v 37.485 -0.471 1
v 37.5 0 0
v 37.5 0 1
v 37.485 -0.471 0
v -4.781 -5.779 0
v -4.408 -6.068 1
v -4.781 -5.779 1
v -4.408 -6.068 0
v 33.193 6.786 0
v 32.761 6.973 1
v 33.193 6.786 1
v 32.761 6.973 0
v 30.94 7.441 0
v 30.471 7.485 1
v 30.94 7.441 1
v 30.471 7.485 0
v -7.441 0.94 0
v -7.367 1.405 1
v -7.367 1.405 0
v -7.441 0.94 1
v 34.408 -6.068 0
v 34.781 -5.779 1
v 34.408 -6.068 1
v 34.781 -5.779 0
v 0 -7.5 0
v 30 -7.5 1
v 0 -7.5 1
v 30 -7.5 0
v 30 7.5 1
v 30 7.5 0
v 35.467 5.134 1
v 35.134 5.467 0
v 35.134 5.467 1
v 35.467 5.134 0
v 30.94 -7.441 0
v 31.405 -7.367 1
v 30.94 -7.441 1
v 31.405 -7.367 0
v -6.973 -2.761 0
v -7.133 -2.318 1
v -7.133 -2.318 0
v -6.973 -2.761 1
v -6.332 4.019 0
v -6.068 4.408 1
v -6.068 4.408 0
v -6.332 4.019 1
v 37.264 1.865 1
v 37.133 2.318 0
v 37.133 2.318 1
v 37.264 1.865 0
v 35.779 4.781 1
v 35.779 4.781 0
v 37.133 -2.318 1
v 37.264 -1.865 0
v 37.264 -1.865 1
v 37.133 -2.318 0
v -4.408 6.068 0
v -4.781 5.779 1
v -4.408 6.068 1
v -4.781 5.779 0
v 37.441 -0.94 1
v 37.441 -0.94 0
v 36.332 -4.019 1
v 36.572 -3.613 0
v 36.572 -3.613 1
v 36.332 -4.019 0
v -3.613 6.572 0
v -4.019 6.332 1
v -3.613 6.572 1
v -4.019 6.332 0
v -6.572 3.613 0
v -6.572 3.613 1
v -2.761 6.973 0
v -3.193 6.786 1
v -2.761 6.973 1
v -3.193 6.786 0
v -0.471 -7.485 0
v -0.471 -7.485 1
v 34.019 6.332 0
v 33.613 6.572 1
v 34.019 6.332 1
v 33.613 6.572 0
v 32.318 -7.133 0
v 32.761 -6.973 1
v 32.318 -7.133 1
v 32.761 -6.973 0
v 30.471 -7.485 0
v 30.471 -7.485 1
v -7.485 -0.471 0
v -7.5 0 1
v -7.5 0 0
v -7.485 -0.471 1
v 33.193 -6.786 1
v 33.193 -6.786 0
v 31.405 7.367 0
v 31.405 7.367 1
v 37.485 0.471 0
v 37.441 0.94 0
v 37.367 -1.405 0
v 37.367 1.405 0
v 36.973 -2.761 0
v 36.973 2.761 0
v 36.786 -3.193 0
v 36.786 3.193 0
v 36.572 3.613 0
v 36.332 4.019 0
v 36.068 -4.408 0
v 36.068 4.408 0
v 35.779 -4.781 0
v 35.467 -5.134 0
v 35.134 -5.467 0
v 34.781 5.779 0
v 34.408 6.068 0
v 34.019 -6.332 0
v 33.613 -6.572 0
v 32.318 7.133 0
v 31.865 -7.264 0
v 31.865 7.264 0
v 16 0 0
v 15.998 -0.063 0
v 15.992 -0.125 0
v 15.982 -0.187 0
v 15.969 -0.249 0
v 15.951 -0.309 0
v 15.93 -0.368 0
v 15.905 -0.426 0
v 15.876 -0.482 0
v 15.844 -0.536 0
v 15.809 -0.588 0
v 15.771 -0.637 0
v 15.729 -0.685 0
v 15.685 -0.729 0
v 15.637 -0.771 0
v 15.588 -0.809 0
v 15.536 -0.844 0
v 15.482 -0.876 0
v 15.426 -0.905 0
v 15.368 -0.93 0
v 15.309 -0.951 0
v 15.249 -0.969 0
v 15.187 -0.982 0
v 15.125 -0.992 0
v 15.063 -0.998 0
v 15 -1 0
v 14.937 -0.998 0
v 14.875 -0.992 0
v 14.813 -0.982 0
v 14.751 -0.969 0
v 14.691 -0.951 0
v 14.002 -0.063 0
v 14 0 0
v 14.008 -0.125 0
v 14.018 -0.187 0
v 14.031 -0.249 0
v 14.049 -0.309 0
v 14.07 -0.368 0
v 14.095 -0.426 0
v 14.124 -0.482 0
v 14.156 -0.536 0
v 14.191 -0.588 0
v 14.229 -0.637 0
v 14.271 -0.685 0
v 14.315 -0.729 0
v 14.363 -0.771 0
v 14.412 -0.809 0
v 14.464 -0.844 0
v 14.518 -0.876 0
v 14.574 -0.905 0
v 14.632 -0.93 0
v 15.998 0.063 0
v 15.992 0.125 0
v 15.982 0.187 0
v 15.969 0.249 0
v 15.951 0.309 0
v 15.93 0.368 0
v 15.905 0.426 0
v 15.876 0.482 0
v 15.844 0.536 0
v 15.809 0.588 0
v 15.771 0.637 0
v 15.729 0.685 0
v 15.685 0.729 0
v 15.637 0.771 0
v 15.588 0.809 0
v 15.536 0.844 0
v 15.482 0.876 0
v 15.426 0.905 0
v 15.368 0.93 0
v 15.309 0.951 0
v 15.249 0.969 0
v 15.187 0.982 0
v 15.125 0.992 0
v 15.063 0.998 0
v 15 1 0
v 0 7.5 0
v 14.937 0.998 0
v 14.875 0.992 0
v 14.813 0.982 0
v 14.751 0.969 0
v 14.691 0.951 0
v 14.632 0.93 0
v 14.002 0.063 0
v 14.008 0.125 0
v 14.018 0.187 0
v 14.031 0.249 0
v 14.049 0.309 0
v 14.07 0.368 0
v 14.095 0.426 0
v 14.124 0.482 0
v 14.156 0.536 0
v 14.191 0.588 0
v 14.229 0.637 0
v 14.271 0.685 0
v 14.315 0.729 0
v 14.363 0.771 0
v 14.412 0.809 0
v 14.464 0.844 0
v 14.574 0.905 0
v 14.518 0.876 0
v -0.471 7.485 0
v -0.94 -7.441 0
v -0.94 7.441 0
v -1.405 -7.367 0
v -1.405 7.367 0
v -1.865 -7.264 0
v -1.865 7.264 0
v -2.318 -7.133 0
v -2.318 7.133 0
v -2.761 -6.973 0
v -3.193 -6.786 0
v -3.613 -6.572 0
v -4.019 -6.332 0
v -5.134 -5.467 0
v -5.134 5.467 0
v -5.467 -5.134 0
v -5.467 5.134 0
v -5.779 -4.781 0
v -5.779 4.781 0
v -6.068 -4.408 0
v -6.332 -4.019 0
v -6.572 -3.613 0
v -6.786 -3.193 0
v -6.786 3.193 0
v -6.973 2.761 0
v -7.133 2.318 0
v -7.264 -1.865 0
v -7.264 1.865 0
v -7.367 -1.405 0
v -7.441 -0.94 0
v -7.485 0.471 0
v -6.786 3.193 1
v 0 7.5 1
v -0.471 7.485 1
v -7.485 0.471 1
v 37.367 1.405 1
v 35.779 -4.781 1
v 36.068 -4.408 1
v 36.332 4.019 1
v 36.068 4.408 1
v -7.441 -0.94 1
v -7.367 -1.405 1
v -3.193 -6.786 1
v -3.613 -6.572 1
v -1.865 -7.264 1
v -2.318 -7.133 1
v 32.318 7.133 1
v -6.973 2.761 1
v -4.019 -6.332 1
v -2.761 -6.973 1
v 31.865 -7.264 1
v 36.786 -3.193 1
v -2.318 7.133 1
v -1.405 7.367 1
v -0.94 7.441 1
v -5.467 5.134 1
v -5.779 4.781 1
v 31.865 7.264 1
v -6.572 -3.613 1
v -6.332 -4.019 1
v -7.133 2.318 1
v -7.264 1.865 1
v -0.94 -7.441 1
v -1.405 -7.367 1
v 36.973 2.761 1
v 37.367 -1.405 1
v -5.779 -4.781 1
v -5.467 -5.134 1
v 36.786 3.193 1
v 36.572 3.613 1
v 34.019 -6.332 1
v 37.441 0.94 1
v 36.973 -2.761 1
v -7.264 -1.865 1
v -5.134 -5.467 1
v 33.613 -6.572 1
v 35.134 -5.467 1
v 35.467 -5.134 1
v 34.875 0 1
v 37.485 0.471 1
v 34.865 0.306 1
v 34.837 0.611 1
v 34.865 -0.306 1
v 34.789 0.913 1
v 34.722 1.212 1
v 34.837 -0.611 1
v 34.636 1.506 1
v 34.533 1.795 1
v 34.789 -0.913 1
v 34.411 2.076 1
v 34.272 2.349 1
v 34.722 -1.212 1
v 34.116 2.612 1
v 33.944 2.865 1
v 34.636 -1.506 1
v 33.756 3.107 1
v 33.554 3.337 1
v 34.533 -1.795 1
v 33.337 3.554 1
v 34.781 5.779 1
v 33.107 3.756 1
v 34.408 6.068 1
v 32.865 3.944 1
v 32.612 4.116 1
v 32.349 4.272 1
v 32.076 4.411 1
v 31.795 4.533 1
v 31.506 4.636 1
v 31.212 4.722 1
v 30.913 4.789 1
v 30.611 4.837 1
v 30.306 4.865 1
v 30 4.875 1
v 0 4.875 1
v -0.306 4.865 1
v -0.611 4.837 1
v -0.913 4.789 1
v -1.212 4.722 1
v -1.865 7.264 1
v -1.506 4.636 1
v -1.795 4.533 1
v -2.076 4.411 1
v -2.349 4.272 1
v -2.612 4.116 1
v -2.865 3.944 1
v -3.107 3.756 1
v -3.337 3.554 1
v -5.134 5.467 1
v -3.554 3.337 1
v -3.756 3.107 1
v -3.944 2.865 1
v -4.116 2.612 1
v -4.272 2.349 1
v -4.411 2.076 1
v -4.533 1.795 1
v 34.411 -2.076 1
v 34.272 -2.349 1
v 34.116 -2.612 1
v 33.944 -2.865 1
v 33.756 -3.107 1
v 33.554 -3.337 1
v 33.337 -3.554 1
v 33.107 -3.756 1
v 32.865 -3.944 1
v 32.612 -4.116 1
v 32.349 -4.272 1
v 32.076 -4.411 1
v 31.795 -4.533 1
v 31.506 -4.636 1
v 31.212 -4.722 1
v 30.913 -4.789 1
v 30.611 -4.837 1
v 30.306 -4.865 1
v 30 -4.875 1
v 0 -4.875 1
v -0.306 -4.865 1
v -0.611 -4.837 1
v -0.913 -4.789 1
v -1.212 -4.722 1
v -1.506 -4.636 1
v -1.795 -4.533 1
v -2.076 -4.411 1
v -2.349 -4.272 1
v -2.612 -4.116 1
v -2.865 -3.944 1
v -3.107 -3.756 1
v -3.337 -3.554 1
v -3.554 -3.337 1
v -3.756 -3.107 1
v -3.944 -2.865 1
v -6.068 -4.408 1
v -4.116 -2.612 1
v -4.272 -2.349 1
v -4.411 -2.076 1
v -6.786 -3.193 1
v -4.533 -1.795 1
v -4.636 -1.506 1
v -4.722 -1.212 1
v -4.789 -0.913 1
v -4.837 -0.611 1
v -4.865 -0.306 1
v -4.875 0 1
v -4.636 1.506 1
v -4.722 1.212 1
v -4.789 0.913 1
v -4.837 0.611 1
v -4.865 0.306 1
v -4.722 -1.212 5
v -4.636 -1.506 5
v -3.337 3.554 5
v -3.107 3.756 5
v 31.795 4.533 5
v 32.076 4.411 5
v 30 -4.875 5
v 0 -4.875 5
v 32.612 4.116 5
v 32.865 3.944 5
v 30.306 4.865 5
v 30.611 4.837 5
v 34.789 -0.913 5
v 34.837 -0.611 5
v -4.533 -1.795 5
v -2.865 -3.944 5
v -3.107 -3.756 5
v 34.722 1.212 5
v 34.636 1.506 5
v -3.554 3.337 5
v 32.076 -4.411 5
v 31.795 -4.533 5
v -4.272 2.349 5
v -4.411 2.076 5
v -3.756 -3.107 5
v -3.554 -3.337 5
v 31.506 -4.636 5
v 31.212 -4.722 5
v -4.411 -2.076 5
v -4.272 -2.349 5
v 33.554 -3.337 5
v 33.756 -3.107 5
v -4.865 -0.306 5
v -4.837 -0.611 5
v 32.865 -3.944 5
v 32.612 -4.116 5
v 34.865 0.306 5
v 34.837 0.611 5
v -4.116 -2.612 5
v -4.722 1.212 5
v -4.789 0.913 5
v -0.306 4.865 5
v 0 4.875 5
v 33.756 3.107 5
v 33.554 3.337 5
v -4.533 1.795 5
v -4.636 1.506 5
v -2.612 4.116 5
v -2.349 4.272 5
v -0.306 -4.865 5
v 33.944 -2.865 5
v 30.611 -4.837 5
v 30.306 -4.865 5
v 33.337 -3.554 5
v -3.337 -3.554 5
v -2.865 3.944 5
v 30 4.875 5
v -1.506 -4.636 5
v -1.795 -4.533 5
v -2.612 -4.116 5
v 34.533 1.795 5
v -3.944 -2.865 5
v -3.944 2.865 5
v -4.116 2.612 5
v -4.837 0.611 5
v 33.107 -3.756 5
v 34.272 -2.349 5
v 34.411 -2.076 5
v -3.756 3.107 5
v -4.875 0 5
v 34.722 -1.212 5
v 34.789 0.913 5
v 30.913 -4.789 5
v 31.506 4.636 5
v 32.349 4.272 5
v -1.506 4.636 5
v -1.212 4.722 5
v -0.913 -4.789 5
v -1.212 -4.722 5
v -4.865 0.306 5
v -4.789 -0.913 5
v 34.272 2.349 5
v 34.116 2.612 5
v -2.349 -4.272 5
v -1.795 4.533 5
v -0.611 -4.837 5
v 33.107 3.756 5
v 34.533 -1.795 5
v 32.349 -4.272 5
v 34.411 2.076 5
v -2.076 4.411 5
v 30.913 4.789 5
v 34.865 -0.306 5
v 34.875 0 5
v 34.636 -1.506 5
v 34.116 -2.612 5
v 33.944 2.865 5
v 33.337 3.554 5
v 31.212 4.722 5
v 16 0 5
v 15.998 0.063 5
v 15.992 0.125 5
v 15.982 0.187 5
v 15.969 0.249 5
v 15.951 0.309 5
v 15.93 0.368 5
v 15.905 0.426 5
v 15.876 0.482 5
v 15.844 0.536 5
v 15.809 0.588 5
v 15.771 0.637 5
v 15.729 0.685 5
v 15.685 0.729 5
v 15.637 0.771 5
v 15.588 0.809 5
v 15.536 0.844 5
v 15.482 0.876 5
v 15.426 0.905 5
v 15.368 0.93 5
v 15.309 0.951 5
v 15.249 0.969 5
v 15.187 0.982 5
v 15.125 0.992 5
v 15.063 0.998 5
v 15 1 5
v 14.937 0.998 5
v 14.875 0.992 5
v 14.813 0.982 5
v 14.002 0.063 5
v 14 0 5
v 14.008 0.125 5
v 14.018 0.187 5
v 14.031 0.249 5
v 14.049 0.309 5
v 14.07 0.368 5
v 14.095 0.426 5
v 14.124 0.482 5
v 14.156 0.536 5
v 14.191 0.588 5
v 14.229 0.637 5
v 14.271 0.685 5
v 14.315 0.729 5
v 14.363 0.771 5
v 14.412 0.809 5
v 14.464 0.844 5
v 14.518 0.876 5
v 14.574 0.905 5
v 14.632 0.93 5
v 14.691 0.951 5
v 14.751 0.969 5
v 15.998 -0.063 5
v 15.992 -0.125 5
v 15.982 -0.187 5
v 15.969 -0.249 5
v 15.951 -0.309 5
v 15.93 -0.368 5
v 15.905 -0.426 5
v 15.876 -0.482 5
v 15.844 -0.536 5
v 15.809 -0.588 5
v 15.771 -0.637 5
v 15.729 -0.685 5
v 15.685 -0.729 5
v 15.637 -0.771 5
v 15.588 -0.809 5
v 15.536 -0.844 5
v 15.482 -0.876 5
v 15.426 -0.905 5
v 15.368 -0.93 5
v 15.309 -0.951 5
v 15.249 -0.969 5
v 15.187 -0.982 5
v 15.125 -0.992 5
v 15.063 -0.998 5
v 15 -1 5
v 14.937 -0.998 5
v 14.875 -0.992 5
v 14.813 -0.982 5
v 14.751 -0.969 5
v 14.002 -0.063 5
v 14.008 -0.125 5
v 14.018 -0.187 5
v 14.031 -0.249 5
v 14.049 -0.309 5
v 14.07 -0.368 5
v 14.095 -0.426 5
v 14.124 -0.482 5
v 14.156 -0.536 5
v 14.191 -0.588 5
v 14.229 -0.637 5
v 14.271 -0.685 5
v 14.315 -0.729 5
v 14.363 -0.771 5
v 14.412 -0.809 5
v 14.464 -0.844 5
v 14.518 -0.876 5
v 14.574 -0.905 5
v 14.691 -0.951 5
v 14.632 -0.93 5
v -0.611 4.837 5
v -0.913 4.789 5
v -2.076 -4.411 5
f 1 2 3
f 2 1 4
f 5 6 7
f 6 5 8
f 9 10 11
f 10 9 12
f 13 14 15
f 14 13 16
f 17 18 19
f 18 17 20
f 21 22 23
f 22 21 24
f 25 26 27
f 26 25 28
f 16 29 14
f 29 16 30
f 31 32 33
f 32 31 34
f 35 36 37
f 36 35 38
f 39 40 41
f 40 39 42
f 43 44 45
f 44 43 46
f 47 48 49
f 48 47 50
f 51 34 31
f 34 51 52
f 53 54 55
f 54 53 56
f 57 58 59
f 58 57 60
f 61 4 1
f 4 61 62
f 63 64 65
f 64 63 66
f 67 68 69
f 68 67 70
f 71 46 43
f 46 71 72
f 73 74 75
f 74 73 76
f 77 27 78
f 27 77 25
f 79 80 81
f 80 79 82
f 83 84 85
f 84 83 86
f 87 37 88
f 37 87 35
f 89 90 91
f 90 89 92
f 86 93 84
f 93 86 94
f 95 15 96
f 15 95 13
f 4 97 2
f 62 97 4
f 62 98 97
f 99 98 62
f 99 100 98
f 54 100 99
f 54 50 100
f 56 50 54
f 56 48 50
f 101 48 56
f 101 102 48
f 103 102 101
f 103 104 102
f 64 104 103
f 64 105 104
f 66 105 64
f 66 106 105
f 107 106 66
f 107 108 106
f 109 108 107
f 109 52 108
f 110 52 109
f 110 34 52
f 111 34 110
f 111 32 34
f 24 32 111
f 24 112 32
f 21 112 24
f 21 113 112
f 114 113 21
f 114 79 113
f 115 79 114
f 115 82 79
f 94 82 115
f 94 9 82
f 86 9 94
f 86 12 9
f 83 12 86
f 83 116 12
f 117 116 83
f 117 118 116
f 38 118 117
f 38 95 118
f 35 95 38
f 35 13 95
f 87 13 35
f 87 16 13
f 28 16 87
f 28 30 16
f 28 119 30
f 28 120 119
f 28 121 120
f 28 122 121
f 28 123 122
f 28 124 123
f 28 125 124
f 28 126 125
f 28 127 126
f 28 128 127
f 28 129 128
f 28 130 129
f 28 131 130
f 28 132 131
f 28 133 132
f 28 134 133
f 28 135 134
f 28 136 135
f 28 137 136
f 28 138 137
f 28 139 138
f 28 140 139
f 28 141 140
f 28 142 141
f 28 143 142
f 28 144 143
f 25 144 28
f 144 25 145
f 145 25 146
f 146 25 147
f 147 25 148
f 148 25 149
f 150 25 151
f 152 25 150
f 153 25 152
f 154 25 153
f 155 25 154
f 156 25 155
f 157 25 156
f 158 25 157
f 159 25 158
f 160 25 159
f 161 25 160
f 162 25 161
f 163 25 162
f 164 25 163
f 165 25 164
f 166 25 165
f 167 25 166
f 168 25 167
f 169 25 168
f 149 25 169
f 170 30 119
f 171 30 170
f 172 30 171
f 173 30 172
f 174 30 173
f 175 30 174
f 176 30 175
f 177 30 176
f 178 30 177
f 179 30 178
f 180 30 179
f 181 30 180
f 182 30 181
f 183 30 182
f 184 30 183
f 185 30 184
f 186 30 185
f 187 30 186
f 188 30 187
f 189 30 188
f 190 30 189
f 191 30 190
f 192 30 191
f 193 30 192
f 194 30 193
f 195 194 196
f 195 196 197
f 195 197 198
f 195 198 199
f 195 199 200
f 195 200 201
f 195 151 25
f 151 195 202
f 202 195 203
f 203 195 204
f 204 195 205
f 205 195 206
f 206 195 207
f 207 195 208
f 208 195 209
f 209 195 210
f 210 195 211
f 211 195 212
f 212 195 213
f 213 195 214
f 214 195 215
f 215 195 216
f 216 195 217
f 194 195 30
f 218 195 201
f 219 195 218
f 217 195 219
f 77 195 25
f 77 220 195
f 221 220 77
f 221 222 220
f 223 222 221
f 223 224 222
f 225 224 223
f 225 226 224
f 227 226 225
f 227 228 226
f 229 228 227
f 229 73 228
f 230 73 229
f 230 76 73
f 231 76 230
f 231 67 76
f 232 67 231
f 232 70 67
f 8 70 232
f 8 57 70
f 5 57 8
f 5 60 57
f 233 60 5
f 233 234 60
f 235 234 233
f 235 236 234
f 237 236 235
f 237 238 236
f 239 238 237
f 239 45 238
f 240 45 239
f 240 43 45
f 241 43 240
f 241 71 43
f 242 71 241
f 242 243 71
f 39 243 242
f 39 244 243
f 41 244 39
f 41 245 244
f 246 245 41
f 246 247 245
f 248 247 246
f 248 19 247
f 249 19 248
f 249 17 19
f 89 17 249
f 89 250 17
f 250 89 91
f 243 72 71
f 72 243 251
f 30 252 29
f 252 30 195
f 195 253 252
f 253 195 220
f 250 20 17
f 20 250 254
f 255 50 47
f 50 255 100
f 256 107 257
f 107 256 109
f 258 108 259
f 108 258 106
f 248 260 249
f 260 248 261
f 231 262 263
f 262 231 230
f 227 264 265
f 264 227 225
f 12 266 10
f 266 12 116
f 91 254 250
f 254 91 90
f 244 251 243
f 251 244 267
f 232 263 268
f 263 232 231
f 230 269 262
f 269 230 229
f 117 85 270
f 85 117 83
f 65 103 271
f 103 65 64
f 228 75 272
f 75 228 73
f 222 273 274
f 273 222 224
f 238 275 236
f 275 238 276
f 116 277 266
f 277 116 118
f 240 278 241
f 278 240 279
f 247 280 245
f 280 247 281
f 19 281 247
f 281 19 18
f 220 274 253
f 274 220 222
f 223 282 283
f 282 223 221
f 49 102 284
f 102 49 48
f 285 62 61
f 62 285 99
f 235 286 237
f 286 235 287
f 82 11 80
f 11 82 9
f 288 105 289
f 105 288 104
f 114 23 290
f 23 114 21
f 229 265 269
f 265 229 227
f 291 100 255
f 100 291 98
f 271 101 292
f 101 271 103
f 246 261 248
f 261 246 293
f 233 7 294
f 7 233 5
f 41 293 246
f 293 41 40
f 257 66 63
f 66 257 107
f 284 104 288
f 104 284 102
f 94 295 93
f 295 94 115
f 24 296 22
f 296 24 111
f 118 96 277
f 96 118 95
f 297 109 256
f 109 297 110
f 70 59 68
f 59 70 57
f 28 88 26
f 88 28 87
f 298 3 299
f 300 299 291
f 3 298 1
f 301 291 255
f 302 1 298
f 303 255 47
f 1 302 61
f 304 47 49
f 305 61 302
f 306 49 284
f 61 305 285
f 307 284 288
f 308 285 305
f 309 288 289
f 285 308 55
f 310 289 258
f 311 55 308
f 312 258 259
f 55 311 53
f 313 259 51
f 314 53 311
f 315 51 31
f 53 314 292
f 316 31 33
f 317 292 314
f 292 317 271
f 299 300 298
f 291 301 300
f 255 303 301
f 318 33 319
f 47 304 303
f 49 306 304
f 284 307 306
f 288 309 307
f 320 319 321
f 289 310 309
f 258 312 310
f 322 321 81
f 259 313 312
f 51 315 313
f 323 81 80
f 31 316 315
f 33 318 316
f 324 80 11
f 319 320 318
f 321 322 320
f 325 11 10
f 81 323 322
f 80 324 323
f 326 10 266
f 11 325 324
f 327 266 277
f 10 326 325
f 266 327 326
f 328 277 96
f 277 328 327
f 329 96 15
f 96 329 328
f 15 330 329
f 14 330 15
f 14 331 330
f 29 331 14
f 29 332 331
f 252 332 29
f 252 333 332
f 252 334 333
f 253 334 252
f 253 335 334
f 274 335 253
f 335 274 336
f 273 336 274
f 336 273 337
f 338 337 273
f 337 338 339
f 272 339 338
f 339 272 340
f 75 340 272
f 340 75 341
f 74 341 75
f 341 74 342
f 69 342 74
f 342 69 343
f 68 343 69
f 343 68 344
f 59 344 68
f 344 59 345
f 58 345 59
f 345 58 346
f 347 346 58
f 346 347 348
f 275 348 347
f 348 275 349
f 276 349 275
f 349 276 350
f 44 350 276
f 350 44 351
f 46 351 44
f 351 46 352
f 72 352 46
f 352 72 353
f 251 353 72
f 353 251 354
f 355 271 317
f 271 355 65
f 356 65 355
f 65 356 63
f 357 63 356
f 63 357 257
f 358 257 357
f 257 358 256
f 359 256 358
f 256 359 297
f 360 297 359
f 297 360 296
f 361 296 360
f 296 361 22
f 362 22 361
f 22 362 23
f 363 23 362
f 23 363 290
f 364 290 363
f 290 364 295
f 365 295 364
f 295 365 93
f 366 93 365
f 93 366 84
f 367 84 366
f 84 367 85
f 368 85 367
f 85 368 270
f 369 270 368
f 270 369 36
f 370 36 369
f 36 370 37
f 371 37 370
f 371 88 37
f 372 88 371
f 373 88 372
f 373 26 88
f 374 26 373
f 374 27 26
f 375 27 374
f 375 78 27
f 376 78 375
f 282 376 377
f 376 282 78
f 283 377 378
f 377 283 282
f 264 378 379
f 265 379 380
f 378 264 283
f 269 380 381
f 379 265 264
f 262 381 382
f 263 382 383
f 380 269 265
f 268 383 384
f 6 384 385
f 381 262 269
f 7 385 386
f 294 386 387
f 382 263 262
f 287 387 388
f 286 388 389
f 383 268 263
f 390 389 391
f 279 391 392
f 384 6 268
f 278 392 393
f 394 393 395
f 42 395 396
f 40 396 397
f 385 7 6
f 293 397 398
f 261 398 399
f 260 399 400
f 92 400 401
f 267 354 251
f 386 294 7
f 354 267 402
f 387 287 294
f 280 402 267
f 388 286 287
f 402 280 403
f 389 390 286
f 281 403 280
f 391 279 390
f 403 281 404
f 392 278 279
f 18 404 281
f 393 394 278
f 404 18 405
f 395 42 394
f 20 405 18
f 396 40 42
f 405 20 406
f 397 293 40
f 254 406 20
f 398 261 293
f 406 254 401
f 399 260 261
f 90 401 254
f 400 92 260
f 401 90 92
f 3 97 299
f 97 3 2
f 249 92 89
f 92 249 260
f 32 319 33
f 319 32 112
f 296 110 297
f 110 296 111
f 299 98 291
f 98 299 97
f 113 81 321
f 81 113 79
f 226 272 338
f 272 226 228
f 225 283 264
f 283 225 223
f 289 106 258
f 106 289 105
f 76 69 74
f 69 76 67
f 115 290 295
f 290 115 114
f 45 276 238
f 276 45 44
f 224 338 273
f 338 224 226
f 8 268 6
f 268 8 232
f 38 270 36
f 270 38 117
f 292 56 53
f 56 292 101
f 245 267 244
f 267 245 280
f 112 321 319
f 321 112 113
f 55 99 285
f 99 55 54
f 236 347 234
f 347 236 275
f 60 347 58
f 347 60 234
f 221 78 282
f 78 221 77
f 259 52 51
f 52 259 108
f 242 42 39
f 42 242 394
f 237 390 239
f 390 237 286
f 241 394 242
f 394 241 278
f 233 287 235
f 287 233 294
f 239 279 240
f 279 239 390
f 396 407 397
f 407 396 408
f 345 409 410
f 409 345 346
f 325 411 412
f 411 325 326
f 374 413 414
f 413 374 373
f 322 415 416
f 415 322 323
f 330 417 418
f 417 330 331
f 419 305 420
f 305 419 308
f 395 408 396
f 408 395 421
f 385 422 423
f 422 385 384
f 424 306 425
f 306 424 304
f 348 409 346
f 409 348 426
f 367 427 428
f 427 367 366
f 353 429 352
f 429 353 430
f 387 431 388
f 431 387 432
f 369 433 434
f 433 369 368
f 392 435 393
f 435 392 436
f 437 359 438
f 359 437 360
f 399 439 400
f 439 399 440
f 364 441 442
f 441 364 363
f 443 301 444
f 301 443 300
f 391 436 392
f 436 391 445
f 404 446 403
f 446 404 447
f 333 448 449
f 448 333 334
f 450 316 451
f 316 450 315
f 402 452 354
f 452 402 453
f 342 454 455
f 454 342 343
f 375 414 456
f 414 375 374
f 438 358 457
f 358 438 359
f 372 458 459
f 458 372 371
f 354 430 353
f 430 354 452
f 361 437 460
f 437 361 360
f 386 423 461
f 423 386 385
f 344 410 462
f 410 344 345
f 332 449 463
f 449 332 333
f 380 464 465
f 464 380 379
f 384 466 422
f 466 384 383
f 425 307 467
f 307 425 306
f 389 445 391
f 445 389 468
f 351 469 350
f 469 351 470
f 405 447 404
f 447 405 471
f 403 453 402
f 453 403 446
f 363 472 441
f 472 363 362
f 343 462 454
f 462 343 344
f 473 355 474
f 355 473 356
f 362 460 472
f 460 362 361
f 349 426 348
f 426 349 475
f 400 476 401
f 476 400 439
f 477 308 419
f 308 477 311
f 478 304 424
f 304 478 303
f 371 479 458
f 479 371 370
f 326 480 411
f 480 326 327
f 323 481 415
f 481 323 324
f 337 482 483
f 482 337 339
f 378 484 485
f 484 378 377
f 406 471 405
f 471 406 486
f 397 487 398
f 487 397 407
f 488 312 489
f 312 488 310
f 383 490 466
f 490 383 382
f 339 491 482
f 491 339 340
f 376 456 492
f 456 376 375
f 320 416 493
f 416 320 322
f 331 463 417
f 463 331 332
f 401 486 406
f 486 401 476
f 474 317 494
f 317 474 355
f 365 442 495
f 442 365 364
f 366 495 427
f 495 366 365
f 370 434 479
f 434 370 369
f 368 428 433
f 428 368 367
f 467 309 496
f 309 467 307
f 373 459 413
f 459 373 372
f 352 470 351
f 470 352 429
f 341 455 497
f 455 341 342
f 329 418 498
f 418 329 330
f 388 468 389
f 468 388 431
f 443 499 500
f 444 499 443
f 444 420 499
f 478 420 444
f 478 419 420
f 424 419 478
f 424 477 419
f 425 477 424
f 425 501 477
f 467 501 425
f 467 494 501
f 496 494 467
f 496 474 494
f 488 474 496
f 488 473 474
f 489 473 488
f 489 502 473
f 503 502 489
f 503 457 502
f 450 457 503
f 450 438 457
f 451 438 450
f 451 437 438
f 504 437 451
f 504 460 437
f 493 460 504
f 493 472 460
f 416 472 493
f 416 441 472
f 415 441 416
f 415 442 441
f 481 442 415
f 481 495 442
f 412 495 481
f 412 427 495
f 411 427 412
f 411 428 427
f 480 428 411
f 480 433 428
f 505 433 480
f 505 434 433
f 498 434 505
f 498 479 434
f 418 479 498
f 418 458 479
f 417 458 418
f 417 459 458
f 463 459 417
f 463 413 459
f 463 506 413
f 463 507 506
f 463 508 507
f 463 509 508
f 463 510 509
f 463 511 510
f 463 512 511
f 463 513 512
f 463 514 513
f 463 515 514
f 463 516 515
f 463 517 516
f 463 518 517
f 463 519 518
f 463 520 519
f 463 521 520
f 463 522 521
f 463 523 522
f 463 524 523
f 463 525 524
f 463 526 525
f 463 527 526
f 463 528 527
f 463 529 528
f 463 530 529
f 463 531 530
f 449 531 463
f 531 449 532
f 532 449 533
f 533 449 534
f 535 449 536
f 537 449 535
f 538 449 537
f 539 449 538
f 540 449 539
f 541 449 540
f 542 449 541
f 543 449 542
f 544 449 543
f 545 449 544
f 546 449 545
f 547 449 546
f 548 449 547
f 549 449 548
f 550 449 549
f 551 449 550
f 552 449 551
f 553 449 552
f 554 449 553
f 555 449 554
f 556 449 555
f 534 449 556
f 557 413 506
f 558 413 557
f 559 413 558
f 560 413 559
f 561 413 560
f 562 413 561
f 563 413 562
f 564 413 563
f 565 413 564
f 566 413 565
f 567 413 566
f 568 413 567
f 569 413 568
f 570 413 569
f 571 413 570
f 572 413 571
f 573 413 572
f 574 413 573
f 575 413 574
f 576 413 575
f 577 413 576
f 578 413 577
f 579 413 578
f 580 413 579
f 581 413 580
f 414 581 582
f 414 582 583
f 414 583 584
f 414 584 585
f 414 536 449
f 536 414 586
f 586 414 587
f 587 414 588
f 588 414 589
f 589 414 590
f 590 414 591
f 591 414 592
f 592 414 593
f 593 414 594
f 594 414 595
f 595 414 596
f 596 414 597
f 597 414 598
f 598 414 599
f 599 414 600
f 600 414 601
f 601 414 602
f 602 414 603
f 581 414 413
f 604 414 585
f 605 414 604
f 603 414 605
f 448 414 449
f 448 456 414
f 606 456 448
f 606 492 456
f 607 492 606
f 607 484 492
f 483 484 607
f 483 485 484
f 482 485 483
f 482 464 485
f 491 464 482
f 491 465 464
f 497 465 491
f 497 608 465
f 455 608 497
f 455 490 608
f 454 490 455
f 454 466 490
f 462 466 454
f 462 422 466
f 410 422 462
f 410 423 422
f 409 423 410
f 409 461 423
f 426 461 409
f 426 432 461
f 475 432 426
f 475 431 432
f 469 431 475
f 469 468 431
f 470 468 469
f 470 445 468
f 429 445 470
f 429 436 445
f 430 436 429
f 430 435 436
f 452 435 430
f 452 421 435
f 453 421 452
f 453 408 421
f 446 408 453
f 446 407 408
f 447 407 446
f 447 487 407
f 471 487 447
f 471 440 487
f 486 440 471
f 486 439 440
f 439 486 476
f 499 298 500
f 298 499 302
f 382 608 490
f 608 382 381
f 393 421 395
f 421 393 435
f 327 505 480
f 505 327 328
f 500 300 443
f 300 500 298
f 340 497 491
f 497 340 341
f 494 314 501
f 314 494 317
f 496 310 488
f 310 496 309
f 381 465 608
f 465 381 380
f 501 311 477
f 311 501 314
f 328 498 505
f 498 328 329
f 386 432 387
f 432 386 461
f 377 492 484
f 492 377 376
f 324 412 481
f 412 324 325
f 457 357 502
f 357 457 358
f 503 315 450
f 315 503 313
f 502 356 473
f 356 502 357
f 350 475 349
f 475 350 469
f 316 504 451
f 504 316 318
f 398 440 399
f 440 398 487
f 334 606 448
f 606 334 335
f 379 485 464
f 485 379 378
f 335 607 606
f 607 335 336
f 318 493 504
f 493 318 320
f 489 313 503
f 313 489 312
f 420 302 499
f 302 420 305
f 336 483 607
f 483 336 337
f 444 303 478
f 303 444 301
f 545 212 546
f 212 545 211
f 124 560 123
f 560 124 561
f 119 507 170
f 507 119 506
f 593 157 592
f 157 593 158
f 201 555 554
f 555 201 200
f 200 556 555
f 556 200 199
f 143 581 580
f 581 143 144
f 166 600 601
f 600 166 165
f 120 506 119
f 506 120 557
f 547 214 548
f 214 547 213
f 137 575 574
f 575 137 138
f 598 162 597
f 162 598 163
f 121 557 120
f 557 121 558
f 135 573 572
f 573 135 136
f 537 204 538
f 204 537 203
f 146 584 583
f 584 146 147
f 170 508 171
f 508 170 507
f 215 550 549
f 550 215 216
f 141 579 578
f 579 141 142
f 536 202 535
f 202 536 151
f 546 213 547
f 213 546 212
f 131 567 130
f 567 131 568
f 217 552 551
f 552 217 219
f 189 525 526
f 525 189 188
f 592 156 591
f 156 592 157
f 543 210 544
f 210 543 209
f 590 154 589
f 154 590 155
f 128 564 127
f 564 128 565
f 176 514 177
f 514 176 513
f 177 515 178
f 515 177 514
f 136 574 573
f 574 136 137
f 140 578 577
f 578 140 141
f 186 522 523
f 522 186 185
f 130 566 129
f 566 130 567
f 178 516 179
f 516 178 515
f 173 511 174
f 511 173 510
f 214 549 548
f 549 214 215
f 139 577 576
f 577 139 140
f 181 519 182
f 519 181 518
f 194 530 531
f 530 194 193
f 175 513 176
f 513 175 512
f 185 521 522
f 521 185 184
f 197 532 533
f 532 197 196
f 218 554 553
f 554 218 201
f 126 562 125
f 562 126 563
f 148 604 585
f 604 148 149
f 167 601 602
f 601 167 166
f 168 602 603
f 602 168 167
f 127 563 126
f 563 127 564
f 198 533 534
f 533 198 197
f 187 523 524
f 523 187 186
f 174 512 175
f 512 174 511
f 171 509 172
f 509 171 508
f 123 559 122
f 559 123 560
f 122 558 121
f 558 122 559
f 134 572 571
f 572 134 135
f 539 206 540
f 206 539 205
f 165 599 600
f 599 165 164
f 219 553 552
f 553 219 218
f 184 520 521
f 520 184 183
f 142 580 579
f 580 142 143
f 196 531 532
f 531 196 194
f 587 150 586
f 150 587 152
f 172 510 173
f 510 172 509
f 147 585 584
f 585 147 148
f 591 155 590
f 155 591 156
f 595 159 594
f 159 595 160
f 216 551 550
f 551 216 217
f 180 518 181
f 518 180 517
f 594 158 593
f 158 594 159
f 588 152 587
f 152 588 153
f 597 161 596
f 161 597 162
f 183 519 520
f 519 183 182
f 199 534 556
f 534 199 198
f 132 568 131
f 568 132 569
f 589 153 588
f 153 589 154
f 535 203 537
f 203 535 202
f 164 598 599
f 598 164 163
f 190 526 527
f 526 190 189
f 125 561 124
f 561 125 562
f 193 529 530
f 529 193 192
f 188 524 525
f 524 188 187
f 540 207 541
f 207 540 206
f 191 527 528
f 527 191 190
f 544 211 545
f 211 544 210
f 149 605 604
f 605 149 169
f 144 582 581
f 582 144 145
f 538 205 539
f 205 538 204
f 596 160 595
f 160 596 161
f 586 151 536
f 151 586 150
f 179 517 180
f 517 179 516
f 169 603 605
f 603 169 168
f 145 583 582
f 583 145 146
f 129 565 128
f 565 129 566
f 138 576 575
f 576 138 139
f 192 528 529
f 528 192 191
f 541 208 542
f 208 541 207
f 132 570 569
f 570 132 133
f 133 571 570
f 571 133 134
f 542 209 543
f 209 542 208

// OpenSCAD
// file: funcSuporteDoCuboBaixo_v2.scad
use <funcoes_GFCx.scad>
module funcSuporteDoCuboBaixo_v2(){
    // ----- ----- ----- Declaração de Variáveis ----- ----- ----- //
    res=100;

    // ----- ----- ----- Declaração de Funções ----- ----- ----- //
    
    //funcao_2d_array_cilindros(r,d,h,nx,ny,geo,res,nome="Conjunto 1")

    //suporte do cubo
    difference(){
        translate([-2,-2,0])cube([54,54,120]);
        #translate([8-34/2,-2-54/2,70])cube([2*34,2*54,2*40]);
        #translate([8,-2,10])cube([34,54,50]);
        #translate([-2,8,10])cube([54,34,50]);
        #translate([-2,8,70])cube([54,34,40]);
    }
     difference(){
        translate([-25,-25,0])cube([100,100,15]);
        //#translate([-12.5,-12.5,0])cylinder(h=15, r=3.3);
        //#translate([62.5,62.5,0])cylinder(h=15, r=3.3);
        //#translate([62.5,-12.5,0])cylinder(h=15, r=3.3);
        //#translate([-12.5,62.5,0])cylinder(h=15, r=3.3);
        #translate([-12.5,-12.5,0])
        #funcao_2d_array_cilindros(7/2,25.2,15,4,4,1,res,nome="Base do Suporte");
    }

    //base
    rotate(a=[0,0,0])translate([-2,8,20])
    difference(){
        rotate(a=[90,30,0])translate([0,0,0])cylinder(10,10,10,$fn=3);
        #translate([0,-10,-5])cube([10,10,15]);
    }
    rotate(a=[0,0,90])translate([-2,2,20])
    difference(){
        rotate(a=[90,30,0])translate([0,0,0])cylinder(10,10,10,$fn=3);
        #translate([0,-10,-5])cube([10,10,15]);
    }
    translate([52,52,20])rotate(a=[0,0,270])
    difference(){
        rotate(a=[90,30,0])translate([0,0,0])cylinder(10,10,10,$fn=3);
        #translate([0,-10,-5])cube([10,10,15]);
    }
    translate([8,52,20])rotate(a=[0,0,270])
    difference(){
        rotate(a=[90,30,0])translate([0,0,0])cylinder(10,10,10,$fn=3);
        #translate([0,-10,-5])cube([10,10,15]);
    }
    rotate(a=[0,0,0])translate([-2,52,20])
    difference(){
        rotate(a=[90,30,0])translate([0,0,0])cylinder(10,10,10,$fn=3);
        #translate([0,-10,-5])cube([10,10,15]);
    }
    rotate(a=[0,0,90])translate([-2,-42,20])
    difference(){
        rotate(a=[90,30,0])translate([0,0,0])cylinder(10,10,10,$fn=3);
        #translate([0,-10,-5])cube([10,10,15]);
    }
    translate([52,-2,20])rotate(a=[0,0,180])
    difference(){
        rotate(a=[90,30,0])translate([0,0,0])cylinder(10,10,10,$fn=3);
        #translate([0,-10,-5])cube([10,10,15]);
    }
    translate([52,42,20])rotate(a=[0,0,180])
    difference(){
        rotate(a=[90,30,0])translate([0,0,0])cylinder(10,10,10,$fn=3);
        #translate([0,-10,-5])cube([10,10,15]);
    }
}

translate([25,25,0])
translate([-50,-50,0])
funcSuporteDoCuboBaixo_v2();
// main file
// ----- ----- ----- Declaração de Variáveis ----- ----- ----- //
res=100;
folga1=0.125;

cubox=50-35;
cuboy=50;
cuboz=60;
rBob=15;
esp=2.5;

rInt=10.45;
rExt=12.45;
alt=15;

supr=18;
supalt=5;

// Estamos nos referindo aqui ao encaixe do interior
encx=54.5;
ency=54.5;
encz=10;
espenc=2;

// ----- ----- ----- Declaração de Funções ----- ----- ----- //
use <funcoes_GFCx.scad>
use <funcSuporteDoCuboBaixo_v2.scad>

// ----- ----- ----- MAIN ----- ----- ----- //
r_splh=1;
altu=100;
altbolacha=5;
altstepbolacha=1;
bolachahull=30;

difference(){
    translate([0,0,0]){
        hull(){
            cylinder(altstepbolacha,(cubox-2*esp)/2+esp,(cubox-2*esp)/2+esp,$fn=res);
            translate([bolachahull,0,0])cylinder(altstepbolacha,(cubox-2*esp)/2+esp,(cubox-2*esp)/2+esp,$fn=res);
        }
        hull(){
            cylinder(altbolacha,(cubox-2*esp)/2-folga1,(cubox-2*esp)/2-folga1,$fn=res);
            translate([bolachahull,0,0])cylinder(altbolacha,(cubox-2*esp)/2-folga1,(cubox-2*esp)/2-folga1,$fn=res);
        }
    }
    #translate([bolachahull/2,0,0])cylinder(altbolacha,r_splh,r_splh,$fn=res);
}
